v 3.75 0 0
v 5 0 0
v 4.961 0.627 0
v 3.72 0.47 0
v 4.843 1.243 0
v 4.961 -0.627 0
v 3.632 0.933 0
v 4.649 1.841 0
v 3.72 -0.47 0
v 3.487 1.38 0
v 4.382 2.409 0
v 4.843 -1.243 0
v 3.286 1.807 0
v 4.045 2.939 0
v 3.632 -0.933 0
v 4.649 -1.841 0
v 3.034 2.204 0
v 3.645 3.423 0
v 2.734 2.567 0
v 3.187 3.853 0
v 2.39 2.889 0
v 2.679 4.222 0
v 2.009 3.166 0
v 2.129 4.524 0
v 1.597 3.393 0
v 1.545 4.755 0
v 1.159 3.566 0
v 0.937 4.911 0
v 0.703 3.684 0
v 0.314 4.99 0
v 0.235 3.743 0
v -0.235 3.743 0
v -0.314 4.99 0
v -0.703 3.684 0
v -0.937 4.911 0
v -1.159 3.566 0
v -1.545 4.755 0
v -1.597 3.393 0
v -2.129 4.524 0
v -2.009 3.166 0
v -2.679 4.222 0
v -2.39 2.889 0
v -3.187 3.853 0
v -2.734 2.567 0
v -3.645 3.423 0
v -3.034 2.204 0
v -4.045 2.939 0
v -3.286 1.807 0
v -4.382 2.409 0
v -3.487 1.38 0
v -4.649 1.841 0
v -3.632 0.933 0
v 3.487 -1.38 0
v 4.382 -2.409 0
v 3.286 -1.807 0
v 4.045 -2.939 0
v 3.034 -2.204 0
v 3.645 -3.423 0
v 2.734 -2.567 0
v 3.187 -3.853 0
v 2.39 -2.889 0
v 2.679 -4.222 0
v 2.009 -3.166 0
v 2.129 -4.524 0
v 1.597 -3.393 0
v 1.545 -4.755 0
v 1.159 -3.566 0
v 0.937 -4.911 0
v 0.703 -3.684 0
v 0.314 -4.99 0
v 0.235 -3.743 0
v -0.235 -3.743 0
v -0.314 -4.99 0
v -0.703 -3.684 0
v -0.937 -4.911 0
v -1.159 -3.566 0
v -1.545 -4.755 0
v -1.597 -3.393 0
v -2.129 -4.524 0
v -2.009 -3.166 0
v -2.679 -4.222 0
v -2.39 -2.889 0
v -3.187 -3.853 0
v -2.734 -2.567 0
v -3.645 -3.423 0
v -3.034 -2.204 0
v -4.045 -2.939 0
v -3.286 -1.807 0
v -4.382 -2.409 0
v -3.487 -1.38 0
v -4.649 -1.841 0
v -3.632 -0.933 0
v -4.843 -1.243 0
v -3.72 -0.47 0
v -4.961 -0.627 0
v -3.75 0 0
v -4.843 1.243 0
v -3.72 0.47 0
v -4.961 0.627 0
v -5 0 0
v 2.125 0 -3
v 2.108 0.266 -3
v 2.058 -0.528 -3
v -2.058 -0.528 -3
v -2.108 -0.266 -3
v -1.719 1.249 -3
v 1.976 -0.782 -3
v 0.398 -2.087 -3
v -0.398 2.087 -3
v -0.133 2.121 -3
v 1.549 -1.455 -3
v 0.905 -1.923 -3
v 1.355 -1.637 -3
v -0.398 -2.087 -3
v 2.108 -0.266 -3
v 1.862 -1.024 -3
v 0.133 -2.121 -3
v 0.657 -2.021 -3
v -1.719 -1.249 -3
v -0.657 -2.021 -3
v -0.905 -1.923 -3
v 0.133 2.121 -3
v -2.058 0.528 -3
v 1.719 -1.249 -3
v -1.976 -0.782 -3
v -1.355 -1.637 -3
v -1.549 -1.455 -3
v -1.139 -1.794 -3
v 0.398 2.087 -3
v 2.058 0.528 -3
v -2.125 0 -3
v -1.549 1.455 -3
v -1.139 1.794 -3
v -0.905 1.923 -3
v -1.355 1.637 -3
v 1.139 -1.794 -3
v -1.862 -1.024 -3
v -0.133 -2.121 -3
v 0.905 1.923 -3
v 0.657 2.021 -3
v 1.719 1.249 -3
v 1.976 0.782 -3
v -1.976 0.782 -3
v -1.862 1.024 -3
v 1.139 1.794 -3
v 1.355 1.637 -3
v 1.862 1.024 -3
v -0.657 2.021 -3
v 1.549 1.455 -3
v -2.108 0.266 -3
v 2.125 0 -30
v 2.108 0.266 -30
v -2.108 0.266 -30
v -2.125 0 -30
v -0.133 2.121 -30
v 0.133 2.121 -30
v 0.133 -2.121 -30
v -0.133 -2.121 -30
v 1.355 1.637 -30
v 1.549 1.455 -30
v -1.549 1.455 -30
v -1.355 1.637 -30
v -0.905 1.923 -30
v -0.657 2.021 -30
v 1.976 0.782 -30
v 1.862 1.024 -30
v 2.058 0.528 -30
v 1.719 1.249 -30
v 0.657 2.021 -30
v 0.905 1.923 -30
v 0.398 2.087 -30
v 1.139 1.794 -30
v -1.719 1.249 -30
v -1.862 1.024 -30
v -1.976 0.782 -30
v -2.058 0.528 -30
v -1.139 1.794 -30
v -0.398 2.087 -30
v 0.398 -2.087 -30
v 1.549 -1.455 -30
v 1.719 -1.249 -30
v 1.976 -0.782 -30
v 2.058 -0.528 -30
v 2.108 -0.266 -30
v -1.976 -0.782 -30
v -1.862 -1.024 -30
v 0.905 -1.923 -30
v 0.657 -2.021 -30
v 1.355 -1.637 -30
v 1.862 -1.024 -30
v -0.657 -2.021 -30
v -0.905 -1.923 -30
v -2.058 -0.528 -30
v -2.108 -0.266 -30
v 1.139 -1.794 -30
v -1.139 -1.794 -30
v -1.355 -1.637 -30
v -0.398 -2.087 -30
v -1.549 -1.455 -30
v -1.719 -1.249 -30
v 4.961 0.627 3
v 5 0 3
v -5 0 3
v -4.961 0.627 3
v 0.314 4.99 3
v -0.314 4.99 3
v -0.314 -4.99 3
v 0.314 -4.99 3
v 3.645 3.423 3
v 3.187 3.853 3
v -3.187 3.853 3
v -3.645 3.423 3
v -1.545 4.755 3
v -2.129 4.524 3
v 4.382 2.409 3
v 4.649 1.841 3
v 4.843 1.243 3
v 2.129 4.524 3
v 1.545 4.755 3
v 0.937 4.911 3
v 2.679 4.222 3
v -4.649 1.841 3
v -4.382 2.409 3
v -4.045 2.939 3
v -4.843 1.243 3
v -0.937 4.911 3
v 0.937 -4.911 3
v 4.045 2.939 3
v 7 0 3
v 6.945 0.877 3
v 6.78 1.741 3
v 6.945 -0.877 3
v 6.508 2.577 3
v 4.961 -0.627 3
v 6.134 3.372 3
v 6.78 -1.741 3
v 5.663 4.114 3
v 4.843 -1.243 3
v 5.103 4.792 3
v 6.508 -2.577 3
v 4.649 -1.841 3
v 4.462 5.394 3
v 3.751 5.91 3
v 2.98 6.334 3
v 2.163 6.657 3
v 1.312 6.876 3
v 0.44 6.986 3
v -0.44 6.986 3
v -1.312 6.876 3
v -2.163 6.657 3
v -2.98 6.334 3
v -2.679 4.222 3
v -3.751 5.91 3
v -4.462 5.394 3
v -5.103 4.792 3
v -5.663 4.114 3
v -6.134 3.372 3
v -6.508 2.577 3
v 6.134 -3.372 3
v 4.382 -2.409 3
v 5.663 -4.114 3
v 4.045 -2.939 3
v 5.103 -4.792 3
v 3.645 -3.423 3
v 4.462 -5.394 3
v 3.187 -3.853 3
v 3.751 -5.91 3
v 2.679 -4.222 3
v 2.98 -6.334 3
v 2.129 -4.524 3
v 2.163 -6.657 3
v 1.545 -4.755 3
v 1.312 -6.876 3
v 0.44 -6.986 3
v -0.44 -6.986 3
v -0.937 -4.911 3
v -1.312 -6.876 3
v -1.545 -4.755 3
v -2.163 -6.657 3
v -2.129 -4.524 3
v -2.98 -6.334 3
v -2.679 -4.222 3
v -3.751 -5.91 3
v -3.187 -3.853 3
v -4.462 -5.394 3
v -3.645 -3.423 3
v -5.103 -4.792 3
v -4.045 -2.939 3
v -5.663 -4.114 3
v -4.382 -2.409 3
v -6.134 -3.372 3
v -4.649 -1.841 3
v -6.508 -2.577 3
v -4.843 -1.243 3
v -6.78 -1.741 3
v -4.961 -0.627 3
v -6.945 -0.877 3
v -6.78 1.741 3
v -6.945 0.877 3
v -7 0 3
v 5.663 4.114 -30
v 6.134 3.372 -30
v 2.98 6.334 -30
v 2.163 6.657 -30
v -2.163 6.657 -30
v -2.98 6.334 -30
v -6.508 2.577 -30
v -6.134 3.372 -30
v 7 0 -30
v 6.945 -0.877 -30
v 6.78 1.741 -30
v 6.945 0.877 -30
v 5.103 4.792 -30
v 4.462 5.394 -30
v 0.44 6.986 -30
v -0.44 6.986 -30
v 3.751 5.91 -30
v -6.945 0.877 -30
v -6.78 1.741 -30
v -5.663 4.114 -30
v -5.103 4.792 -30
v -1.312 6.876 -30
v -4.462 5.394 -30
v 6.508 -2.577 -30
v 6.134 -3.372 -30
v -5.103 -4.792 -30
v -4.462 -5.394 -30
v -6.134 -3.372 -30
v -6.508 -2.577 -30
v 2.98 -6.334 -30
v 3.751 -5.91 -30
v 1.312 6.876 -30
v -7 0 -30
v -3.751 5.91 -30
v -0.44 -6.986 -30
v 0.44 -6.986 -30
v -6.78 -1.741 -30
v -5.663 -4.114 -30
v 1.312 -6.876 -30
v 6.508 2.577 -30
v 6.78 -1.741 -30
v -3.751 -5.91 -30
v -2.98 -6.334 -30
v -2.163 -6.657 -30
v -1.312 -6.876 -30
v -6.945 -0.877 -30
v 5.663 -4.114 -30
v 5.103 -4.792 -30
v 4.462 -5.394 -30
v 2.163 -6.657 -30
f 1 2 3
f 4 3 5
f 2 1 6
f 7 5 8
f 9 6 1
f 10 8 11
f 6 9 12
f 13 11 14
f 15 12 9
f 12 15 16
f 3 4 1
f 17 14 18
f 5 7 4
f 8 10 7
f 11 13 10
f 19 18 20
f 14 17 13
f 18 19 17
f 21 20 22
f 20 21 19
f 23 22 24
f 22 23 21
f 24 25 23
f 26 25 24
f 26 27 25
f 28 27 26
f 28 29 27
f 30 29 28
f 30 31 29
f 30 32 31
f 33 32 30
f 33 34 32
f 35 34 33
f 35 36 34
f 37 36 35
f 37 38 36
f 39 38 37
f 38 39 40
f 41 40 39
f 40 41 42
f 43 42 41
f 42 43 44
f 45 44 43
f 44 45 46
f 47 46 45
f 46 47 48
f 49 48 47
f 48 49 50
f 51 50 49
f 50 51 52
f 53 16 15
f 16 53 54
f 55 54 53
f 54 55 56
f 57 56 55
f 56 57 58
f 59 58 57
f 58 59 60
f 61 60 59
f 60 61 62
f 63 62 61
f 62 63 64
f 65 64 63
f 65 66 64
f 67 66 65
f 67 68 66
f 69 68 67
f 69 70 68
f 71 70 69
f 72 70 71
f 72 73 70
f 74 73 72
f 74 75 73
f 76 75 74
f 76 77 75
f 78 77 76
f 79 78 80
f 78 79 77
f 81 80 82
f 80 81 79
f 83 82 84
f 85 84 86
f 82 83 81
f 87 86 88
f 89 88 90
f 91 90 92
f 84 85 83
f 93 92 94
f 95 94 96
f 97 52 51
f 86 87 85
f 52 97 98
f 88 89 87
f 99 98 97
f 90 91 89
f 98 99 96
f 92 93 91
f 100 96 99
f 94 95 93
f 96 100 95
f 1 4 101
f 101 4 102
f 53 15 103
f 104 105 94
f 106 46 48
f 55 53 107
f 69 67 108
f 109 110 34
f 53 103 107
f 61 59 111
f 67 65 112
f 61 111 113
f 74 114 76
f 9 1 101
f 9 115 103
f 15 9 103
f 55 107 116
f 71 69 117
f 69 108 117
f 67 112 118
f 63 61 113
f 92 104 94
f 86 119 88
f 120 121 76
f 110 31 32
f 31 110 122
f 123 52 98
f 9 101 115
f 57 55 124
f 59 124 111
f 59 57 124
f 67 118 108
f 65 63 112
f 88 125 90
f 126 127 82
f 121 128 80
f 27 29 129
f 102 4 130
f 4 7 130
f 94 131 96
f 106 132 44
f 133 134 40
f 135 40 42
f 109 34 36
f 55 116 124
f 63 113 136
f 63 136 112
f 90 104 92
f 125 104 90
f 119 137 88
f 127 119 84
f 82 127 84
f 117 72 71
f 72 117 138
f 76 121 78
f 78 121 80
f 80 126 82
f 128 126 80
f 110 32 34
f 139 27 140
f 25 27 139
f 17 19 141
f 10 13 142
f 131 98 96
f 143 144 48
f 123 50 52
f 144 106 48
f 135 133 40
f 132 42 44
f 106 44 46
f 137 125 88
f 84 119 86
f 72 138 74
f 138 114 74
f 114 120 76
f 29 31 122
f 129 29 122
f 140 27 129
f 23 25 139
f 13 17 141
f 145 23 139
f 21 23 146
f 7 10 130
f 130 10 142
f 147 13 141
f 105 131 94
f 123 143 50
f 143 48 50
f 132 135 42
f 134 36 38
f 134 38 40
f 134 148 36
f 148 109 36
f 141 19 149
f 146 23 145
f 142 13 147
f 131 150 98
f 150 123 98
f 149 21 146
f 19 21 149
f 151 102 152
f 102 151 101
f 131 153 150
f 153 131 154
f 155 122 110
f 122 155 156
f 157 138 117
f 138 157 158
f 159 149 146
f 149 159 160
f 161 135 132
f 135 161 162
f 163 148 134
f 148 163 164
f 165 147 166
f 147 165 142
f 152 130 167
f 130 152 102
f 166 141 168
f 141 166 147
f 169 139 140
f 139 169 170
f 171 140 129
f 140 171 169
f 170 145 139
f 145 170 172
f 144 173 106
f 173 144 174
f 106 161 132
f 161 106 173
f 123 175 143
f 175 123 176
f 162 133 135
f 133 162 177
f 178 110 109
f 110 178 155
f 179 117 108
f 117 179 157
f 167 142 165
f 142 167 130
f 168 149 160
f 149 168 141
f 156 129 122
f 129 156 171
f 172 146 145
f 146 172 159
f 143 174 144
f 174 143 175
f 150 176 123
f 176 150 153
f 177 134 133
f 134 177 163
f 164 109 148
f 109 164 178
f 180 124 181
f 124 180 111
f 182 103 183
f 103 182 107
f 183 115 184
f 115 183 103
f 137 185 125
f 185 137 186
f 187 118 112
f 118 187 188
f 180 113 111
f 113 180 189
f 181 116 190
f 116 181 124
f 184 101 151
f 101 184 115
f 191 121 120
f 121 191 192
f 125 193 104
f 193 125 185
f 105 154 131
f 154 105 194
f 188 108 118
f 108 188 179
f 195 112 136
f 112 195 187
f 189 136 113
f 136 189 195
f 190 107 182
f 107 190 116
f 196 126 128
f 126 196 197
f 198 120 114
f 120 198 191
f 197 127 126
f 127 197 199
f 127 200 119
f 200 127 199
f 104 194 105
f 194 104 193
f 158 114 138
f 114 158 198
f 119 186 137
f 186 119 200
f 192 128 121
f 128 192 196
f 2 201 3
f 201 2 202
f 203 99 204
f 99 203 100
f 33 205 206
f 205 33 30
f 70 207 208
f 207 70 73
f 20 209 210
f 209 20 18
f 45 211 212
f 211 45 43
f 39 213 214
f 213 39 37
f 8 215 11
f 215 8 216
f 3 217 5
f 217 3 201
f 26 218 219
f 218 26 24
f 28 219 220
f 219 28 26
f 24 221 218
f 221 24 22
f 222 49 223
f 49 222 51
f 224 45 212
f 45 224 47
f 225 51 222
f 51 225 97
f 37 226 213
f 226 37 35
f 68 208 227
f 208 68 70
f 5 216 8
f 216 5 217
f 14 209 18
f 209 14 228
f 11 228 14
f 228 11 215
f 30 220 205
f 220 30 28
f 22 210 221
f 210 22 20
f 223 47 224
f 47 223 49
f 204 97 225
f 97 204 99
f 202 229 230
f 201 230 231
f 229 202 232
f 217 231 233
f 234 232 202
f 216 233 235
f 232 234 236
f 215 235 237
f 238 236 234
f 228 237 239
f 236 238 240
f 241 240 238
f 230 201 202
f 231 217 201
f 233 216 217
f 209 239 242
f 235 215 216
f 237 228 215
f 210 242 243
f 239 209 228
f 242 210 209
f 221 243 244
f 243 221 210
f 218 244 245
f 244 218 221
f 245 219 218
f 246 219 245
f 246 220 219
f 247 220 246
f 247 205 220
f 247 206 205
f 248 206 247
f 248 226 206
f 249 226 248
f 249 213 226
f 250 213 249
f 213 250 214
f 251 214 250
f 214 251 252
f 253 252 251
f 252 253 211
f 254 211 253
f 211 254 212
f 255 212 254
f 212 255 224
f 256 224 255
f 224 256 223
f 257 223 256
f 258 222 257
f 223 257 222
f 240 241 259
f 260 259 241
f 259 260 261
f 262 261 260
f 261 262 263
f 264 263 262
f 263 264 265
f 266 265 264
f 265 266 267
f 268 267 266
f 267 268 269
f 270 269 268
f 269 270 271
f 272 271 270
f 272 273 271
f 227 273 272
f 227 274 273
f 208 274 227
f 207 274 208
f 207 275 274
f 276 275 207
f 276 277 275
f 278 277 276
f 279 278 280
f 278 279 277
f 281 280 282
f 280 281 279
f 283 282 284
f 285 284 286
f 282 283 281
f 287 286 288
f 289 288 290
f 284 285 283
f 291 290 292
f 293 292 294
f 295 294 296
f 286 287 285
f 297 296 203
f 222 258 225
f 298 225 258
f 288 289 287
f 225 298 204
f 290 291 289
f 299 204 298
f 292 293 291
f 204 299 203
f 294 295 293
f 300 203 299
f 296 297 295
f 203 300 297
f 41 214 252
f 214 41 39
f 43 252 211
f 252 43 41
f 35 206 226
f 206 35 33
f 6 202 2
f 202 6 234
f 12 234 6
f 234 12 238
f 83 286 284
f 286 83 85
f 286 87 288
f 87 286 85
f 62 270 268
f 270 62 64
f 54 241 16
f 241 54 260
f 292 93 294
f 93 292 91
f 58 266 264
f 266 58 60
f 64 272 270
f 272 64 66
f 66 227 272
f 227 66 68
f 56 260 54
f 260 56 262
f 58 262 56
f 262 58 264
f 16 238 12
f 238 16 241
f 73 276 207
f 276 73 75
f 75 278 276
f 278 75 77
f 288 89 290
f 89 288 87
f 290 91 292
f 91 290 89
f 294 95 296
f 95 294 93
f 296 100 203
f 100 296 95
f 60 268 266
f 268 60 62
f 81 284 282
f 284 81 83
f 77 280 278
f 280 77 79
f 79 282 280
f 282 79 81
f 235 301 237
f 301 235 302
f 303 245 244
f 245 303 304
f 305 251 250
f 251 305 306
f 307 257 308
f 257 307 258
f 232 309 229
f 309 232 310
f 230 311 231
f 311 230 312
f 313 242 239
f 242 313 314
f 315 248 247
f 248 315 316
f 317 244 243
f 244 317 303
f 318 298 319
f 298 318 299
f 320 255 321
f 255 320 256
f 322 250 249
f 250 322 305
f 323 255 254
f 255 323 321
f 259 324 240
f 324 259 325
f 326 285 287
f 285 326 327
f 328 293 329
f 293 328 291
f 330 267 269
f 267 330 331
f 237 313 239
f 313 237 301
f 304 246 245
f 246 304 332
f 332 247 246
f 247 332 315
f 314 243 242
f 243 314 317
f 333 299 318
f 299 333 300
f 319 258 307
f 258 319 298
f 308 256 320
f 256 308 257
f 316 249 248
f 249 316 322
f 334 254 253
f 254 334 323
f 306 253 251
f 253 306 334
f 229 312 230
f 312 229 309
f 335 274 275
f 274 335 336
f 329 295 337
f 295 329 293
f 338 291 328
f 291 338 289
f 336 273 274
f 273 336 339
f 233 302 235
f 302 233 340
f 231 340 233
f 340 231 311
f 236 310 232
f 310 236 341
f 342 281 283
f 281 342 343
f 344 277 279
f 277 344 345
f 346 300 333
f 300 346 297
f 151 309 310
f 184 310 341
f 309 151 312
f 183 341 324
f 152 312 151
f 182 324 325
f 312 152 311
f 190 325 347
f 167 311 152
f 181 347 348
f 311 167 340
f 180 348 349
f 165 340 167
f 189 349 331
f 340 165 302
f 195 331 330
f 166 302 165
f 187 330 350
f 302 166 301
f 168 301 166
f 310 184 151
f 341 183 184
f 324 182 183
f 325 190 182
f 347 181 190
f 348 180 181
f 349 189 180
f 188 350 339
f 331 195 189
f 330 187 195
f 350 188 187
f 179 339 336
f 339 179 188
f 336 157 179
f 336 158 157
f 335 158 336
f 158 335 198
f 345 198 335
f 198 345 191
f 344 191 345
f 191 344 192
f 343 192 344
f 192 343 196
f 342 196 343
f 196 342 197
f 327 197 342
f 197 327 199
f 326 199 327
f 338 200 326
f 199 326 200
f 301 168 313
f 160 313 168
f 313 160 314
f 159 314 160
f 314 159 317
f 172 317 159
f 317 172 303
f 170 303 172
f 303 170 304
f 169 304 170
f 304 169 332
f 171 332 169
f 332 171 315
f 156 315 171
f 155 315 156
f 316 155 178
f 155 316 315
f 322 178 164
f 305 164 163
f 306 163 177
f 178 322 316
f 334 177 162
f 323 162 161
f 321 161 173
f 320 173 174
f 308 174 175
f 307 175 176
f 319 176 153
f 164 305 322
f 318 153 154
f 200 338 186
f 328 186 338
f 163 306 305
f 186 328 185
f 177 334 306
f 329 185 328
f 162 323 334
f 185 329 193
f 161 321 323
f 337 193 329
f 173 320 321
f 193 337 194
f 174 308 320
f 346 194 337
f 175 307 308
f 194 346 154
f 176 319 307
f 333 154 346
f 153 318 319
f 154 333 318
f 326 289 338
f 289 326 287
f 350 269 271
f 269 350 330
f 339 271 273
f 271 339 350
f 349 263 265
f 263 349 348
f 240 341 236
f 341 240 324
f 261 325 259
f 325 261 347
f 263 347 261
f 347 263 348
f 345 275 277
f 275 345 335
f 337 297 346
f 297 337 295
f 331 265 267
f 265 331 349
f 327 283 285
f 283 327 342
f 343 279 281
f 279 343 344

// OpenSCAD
$fn = 50;


difference() {
	union() {
		translate(v = [0, 0, -30.0000000000]) {
			cylinder(h = 33, r = 7.0000000000);
		}
	}
	union() {
		translate(v = [0, 0, 0]) {
			rotate(a = [0, 0, 0]) {
				difference() {
					union() {
						translate(v = [0, 0, -33.0000000000]) {
							cylinder(h = 33, r = 2.0000000000);
						}
						translate(v = [0, 0, -3]) {
							cylinder(h = 3, r1 = 2.1250000000, r2 = 3.7500000000);
						}
						translate(v = [0, 0, -33.0000000000]) {
							cylinder(h = 33, r = 2.1250000000);
						}
						translate(v = [0, 0, -33.0000000000]) {
							cylinder(h = 33, r = 2.0000000000);
						}
					}
					union();
				}
			}
		}
		#cylinder(h = 3, r = 5.0000000000);
	}
}
